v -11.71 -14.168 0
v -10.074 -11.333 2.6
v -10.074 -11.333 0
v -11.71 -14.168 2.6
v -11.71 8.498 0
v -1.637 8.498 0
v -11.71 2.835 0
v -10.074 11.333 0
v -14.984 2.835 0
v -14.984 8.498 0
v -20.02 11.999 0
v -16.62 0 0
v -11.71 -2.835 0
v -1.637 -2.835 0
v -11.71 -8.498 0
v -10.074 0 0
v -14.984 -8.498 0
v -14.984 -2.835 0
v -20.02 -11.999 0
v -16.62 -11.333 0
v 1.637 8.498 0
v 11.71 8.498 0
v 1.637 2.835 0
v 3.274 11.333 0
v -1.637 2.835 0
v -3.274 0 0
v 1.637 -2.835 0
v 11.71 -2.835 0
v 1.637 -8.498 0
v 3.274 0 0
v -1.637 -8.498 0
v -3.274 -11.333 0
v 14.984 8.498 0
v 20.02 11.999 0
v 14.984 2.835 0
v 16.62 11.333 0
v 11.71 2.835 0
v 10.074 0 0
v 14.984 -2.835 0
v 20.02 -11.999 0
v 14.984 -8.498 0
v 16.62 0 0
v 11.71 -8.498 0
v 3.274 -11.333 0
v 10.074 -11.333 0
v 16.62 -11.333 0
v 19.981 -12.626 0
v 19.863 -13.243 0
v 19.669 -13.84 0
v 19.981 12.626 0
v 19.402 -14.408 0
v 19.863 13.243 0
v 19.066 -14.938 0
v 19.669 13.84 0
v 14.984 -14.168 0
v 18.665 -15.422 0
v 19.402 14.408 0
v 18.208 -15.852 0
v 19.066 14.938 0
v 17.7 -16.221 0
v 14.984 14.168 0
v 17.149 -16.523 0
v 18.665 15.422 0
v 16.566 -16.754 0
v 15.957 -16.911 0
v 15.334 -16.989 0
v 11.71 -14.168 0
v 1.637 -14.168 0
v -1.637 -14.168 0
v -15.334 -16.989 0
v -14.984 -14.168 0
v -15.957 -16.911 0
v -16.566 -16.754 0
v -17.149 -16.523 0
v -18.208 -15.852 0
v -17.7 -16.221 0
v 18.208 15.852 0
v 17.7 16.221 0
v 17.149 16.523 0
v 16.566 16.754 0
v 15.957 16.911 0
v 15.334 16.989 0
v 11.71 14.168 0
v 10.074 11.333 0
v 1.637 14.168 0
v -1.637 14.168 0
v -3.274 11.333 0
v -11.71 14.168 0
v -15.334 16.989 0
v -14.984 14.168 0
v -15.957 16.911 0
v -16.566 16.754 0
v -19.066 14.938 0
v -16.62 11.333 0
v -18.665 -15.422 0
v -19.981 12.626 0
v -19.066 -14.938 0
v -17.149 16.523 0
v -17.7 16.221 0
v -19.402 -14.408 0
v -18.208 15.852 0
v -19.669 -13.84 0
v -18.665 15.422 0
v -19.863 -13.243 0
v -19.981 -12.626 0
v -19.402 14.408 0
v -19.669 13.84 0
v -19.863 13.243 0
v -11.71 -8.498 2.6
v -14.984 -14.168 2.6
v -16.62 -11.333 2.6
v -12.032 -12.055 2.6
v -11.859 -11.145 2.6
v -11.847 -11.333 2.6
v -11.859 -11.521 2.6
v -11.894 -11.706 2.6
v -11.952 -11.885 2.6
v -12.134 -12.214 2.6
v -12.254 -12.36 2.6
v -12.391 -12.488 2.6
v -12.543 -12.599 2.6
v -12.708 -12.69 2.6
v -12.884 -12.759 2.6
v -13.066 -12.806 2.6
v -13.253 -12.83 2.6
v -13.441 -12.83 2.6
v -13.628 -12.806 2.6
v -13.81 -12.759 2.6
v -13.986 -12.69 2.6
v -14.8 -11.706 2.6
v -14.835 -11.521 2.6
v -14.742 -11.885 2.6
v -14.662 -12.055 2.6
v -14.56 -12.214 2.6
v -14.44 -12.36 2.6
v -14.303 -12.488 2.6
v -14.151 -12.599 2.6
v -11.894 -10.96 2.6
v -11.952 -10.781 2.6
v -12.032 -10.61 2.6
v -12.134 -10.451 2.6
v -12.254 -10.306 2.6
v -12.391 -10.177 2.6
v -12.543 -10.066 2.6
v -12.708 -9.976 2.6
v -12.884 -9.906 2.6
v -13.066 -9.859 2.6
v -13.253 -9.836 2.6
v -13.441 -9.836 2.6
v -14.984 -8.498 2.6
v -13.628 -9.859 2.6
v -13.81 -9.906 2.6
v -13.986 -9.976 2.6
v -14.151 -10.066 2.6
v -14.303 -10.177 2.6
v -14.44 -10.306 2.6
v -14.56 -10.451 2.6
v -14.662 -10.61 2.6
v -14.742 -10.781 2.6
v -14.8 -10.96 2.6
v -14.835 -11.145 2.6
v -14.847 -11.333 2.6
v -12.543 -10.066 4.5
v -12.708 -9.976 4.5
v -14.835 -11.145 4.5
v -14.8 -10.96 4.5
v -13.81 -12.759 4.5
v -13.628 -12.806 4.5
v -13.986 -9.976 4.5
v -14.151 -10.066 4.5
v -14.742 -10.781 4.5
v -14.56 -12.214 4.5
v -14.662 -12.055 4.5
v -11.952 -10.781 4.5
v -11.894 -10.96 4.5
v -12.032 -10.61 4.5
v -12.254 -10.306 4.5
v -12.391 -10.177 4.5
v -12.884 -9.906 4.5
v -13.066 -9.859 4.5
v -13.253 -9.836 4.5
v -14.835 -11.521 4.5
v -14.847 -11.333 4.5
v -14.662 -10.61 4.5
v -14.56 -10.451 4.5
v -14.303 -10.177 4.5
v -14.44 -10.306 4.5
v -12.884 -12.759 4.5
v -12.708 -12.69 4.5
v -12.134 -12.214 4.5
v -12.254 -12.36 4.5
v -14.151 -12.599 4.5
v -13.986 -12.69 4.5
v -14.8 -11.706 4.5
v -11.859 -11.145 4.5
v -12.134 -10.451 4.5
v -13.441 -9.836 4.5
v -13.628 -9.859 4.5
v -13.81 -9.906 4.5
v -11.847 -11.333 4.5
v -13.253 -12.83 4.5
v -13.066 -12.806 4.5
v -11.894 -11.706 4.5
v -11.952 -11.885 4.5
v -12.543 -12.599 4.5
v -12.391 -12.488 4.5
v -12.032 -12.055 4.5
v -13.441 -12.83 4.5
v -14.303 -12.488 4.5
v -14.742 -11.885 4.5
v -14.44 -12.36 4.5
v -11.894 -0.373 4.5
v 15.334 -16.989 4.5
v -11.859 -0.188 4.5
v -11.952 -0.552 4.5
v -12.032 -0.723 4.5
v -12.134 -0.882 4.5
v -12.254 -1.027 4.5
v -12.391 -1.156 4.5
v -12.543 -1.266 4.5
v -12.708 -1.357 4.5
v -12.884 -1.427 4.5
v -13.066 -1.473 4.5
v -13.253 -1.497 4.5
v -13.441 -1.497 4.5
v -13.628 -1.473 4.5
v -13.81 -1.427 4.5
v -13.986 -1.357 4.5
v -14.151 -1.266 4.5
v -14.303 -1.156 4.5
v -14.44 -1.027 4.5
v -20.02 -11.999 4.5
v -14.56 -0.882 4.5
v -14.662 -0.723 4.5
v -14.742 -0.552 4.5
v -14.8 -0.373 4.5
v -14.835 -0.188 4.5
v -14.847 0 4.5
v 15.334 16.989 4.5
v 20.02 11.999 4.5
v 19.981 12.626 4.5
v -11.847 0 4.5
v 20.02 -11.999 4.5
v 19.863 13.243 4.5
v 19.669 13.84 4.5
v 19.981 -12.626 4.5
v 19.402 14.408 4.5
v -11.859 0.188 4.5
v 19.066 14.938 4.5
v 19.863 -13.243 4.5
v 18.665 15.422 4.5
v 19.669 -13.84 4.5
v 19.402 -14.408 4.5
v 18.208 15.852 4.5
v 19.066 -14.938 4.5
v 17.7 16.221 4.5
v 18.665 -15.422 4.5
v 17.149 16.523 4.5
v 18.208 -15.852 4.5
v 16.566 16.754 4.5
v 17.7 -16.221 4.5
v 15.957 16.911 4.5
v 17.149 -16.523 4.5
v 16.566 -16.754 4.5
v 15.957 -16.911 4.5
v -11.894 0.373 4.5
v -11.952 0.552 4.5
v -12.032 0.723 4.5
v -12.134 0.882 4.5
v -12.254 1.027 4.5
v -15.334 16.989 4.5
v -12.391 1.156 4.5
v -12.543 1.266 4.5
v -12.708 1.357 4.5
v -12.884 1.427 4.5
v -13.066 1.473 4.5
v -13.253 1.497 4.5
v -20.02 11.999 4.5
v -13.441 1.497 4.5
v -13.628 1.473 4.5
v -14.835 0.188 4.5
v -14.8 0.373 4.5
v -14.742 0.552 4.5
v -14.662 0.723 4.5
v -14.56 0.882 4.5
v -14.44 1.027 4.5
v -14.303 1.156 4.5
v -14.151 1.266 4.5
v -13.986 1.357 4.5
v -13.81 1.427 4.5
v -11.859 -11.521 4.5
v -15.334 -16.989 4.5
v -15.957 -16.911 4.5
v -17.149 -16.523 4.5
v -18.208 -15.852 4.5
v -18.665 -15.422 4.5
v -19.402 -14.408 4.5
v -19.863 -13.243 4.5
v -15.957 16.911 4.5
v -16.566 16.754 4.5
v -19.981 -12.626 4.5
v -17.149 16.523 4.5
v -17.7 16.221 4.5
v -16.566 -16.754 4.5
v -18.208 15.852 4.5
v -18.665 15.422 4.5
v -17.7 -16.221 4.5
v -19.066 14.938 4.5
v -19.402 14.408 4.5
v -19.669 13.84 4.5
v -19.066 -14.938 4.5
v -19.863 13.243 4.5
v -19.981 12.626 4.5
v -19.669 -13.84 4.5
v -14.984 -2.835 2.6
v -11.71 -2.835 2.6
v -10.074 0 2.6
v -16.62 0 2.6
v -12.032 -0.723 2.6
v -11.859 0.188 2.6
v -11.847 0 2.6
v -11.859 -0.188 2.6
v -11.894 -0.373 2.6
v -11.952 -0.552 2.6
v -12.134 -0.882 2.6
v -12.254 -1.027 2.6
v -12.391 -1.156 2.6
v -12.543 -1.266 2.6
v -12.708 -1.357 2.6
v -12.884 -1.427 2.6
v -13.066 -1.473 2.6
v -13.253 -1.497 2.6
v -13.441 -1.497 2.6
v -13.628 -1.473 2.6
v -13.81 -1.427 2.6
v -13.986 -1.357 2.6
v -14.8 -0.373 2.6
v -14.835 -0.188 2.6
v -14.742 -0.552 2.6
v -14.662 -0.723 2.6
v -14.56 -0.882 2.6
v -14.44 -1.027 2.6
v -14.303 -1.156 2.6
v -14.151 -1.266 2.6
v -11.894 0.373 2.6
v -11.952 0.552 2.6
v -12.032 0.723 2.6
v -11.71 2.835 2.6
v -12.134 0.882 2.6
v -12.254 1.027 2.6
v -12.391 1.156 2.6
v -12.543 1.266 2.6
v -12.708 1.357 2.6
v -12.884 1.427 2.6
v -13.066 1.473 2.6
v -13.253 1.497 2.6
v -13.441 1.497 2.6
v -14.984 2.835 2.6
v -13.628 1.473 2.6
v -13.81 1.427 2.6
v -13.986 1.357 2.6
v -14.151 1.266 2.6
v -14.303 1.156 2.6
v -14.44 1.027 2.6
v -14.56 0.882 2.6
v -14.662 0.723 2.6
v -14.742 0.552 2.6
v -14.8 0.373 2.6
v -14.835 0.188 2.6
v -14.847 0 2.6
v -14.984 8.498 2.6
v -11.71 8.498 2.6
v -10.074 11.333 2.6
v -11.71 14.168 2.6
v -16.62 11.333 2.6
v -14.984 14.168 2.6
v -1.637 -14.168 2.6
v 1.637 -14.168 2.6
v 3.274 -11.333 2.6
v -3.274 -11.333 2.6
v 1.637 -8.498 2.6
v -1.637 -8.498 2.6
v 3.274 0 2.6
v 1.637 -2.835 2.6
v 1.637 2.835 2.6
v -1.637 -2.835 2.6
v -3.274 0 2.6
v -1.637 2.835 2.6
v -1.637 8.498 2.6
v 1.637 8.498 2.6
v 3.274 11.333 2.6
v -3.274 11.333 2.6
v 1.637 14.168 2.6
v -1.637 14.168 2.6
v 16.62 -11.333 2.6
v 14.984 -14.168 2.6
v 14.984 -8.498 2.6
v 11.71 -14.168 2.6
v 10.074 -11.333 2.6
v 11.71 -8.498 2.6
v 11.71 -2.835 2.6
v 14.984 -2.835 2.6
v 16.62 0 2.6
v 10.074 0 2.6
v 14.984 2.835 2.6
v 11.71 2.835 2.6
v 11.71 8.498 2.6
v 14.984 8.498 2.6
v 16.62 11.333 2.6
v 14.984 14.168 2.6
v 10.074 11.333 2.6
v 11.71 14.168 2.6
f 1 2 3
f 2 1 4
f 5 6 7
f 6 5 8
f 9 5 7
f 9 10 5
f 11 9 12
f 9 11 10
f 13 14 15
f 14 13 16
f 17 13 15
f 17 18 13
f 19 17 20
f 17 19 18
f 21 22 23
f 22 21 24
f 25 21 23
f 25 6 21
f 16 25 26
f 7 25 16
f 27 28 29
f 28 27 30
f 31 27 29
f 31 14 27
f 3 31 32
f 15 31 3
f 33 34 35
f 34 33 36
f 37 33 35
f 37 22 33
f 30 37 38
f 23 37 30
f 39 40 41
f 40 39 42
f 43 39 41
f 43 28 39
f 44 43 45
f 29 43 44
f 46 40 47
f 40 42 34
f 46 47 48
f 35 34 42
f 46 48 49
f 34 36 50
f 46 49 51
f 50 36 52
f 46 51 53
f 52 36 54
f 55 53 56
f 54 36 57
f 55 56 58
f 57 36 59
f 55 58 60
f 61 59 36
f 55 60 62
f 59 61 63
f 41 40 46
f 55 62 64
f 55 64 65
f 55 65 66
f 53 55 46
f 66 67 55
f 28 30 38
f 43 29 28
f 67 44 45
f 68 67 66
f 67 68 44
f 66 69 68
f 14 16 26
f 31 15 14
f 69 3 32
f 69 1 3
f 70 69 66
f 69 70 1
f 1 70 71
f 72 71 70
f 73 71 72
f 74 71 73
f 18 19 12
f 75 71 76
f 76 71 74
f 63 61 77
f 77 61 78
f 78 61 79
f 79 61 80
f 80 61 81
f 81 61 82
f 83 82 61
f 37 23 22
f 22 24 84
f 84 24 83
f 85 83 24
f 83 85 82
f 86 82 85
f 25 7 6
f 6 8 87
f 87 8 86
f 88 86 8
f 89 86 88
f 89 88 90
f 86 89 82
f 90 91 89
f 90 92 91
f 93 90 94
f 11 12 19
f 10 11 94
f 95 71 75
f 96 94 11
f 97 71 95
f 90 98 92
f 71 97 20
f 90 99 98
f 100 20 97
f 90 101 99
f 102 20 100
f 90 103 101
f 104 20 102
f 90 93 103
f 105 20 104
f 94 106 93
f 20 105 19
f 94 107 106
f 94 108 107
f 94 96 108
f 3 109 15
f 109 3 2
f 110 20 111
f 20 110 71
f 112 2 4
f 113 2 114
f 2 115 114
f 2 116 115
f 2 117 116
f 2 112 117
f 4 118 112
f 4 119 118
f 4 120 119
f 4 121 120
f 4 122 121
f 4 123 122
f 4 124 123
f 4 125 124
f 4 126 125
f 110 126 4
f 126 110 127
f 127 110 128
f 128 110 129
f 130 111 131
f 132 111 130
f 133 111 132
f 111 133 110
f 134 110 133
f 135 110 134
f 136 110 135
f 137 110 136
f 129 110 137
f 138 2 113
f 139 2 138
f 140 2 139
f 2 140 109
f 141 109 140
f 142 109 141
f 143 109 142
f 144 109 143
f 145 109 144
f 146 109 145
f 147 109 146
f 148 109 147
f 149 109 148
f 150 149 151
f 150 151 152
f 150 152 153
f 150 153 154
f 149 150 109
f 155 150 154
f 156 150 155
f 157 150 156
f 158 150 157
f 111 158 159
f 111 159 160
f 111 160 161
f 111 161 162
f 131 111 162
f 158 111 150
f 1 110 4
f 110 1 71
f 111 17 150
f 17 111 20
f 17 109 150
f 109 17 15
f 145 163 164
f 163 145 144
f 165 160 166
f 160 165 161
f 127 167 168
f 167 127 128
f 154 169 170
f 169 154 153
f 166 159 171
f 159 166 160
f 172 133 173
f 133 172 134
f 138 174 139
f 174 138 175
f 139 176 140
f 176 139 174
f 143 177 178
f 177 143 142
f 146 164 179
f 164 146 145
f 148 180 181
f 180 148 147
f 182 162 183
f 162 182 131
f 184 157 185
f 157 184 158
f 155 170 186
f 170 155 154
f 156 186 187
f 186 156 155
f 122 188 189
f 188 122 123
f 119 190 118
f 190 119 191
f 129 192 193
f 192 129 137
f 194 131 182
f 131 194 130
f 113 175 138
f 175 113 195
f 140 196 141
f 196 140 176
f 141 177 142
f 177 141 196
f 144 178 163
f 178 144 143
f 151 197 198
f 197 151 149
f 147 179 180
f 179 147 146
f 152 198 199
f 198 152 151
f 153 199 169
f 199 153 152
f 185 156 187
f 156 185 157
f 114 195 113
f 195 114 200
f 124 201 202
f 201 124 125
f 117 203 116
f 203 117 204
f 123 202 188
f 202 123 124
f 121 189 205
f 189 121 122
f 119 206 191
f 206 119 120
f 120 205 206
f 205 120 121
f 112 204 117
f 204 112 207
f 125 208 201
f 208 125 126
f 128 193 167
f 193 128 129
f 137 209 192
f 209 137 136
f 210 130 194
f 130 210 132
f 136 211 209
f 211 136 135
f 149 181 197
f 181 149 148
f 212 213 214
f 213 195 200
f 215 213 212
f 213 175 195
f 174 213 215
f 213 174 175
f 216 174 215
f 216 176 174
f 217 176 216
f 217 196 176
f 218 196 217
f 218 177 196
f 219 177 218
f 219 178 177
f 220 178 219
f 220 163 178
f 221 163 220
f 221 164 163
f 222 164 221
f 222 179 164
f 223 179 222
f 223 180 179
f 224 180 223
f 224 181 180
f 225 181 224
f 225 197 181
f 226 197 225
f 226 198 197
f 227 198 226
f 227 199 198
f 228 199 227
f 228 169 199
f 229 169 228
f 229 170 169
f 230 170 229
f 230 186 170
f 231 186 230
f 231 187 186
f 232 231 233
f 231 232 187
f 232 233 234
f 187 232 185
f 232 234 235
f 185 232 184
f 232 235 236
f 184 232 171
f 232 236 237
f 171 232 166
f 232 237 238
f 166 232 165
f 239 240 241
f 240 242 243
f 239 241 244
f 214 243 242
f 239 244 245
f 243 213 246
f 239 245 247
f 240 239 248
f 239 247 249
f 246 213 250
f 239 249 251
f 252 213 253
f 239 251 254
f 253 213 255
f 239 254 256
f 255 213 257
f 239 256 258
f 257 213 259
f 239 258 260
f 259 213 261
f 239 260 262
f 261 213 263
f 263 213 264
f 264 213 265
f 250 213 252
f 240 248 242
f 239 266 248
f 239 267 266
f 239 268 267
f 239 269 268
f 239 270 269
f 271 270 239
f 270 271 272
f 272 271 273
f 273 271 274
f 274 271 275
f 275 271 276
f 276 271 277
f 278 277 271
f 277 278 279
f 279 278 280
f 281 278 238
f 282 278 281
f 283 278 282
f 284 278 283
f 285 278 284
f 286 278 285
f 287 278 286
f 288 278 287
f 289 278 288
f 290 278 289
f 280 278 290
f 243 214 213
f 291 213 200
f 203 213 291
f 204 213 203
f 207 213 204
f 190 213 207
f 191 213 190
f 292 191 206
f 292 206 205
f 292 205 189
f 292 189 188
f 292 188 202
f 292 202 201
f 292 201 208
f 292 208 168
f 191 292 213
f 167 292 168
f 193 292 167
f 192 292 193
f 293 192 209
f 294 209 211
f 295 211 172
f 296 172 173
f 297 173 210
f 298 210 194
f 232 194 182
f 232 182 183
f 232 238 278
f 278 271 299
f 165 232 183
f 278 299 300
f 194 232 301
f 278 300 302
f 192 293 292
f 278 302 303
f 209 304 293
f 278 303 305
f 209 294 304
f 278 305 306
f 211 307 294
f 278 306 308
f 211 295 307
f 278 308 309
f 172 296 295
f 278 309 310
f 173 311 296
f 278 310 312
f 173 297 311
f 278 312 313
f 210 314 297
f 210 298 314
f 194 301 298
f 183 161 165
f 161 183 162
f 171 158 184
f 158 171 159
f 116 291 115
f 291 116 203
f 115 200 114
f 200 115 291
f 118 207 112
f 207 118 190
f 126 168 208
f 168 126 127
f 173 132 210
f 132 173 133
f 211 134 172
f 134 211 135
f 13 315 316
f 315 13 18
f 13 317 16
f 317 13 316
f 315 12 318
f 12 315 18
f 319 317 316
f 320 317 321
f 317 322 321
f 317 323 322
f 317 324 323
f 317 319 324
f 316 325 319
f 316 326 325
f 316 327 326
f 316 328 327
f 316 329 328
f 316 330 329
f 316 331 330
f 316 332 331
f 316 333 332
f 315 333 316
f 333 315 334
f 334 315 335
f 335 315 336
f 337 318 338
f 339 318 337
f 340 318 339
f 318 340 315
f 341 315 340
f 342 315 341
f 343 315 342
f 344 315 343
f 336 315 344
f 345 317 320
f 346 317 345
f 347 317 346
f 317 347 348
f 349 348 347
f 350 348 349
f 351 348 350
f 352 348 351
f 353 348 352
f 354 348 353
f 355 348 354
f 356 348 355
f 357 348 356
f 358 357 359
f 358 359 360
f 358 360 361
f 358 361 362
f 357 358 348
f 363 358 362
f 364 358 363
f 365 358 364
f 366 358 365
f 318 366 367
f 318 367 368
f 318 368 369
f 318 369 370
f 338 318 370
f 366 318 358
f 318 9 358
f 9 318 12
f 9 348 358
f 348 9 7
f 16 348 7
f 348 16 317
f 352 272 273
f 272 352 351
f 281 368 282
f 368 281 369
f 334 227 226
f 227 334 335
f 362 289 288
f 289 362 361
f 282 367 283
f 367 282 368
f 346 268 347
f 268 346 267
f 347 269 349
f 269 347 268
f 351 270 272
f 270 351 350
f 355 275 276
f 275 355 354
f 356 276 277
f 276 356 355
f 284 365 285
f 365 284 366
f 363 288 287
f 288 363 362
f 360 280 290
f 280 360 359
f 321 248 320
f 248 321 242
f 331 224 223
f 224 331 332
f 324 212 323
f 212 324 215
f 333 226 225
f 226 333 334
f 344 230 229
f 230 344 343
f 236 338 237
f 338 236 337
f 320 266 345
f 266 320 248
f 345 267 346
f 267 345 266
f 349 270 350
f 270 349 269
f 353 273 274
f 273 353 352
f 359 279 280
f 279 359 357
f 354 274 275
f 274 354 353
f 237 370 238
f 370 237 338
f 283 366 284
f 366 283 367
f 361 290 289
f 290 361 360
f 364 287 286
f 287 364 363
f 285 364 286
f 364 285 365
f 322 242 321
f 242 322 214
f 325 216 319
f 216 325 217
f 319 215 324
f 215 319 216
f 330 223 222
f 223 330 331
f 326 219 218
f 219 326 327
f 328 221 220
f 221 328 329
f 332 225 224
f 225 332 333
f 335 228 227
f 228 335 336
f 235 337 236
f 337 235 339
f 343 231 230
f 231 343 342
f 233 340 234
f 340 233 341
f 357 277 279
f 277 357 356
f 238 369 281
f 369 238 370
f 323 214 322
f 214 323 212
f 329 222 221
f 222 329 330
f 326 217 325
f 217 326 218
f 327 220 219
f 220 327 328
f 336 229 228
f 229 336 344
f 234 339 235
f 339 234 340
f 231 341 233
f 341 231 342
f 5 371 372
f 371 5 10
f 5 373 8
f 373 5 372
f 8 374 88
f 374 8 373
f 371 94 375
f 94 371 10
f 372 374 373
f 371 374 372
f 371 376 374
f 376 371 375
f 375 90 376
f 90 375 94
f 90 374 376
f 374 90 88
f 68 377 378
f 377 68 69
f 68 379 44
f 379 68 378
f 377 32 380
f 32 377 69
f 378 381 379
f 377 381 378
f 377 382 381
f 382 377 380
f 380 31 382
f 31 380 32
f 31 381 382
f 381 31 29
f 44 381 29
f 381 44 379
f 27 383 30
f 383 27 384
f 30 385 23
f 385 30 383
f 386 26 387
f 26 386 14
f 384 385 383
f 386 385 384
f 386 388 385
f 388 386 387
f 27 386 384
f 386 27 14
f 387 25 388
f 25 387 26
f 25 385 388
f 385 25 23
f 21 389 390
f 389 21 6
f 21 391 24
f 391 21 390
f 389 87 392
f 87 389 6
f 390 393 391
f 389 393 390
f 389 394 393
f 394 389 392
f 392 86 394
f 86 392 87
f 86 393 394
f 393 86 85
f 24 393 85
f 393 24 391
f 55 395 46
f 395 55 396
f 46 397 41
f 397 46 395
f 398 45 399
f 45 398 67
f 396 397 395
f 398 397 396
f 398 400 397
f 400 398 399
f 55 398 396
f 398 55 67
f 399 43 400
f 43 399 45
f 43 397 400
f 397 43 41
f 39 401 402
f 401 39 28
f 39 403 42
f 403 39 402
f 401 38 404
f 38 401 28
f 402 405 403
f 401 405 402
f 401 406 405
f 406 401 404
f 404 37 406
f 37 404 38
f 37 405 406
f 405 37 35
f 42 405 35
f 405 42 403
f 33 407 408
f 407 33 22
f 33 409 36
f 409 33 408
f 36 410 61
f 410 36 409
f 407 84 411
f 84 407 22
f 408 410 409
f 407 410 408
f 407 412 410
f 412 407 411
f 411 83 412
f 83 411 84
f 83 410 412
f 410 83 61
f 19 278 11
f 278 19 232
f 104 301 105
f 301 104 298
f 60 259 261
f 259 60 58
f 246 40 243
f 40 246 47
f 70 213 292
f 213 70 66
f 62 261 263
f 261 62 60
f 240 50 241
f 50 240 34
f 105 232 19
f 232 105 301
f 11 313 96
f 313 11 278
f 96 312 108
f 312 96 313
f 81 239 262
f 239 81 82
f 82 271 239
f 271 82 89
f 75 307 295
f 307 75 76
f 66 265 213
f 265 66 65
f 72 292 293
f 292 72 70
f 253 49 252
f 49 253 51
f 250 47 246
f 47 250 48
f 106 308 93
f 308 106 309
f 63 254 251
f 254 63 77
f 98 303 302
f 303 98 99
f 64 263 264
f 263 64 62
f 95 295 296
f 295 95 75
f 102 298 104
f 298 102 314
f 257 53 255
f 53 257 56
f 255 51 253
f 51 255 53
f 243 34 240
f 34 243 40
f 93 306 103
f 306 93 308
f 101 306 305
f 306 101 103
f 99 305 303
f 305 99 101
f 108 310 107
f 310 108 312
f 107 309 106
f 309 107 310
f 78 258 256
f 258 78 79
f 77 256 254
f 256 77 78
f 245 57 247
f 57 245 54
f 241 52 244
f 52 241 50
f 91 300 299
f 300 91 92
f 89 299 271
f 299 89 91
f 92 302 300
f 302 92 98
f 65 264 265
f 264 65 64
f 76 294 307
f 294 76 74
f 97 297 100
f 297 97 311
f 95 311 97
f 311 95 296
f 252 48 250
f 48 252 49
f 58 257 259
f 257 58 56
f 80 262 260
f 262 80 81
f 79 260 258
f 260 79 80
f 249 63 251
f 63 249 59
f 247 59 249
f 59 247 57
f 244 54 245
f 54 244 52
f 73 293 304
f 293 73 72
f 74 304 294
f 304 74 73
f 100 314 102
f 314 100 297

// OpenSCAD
$fn = 50;


difference() {
	union() {
		translate(v = [0, 0, 0]) {
			rotate(a = [0, 0, 0]) {
				hull() {
					translate(v = [-15.0205000000, 11.9991334489, 0]) {
						rotate(a = [0, 0, 0]) {
							translate(v = [0, 0, 0]) {
								rotate(a = [0, 0, 0]) {
									cylinder(h = 4.5000000000, r = 5);
								}
							}
						}
					}
					translate(v = [15.0205000000, 11.9991334489, 0]) {
						rotate(a = [0, 0, 0]) {
							translate(v = [0, 0, 0]) {
								rotate(a = [0, 0, 0]) {
									cylinder(h = 4.5000000000, r = 5);
								}
							}
						}
					}
					translate(v = [-15.0205000000, -11.9991334489, 0]) {
						rotate(a = [0, 0, 0]) {
							translate(v = [0, 0, 0]) {
								rotate(a = [0, 0, 0]) {
									cylinder(h = 4.5000000000, r = 5);
								}
							}
						}
					}
					translate(v = [15.0205000000, -11.9991334489, 0]) {
						rotate(a = [0, 0, 0]) {
							translate(v = [0, 0, 0]) {
								rotate(a = [0, 0, 0]) {
									cylinder(h = 4.5000000000, r = 5);
								}
							}
						}
					}
				}
			}
		}
	}
	union() {
		translate(v = [-13.3470000000, -11.3327556326, 0]) {
			rotate(a = [0, 0, 0]) {
				translate(v = [0, 0, 0]) {
					rotate(a = [0, 0, 0]) {
						linear_extrude(height = 2.6000000000) {
							polygon(points = [[3.2735000000, 0.0000000000], [1.6367500000, 2.8349341593], [-1.6367500000, 2.8349341593], [-3.2735000000, 0.0000000000], [-1.6367500000, -2.8349341593], [1.6367500000, -2.8349341593]]);
						}
					}
				}
			}
		}
		#translate(v = [-13.3470000000, -11.3327556326, 0]) {
			rotate(a = [0, 0, 0]) {
				cylinder(h = 4.5000000000, r = 1.5000000000);
			}
		}
		translate(v = [-13.3470000000, -0.0000000000, 0]) {
			rotate(a = [0, 0, 0]) {
				translate(v = [0, 0, 0]) {
					rotate(a = [0, 0, 0]) {
						linear_extrude(height = 2.6000000000) {
							polygon(points = [[3.2735000000, 0.0000000000], [1.6367500000, 2.8349341593], [-1.6367500000, 2.8349341593], [-3.2735000000, 0.0000000000], [-1.6367500000, -2.8349341593], [1.6367500000, -2.8349341593]]);
						}
					}
				}
			}
		}
		#translate(v = [-13.3470000000, -0.0000000000, 0]) {
			rotate(a = [0, 0, 0]) {
				cylinder(h = 4.5000000000, r = 1.5000000000);
			}
		}
		translate(v = [-13.3470000000, 11.3327556326, 0]) {
			rotate(a = [0, 0, 0]) {
				translate(v = [0, 0, 0]) {
					rotate(a = [0, 0, 0]) {
						linear_extrude(height = 2.6000000000) {
							polygon(points = [[3.2735000000, 0.0000000000], [1.6367500000, 2.8349341593], [-1.6367500000, 2.8349341593], [-3.2735000000, 0.0000000000], [-1.6367500000, -2.8349341593], [1.6367500000, -2.8349341593]]);
						}
					}
				}
			}
		}
		translate(v = [0.0000000000, -11.3327556326, 0]) {
			rotate(a = [0, 0, 0]) {
				translate(v = [0, 0, 0]) {
					rotate(a = [0, 0, 0]) {
						linear_extrude(height = 2.6000000000) {
							polygon(points = [[3.2735000000, 0.0000000000], [1.6367500000, 2.8349341593], [-1.6367500000, 2.8349341593], [-3.2735000000, 0.0000000000], [-1.6367500000, -2.8349341593], [1.6367500000, -2.8349341593]]);
						}
					}
				}
			}
		}
		translate(v = [0.0000000000, -0.0000000000, 0]) {
			rotate(a = [0, 0, 0]) {
				translate(v = [0, 0, 0]) {
					rotate(a = [0, 0, 0]) {
						linear_extrude(height = 2.6000000000) {
							polygon(points = [[3.2735000000, 0.0000000000], [1.6367500000, 2.8349341593], [-1.6367500000, 2.8349341593], [-3.2735000000, 0.0000000000], [-1.6367500000, -2.8349341593], [1.6367500000, -2.8349341593]]);
						}
					}
				}
			}
		}
		translate(v = [0.0000000000, 11.3327556326, 0]) {
			rotate(a = [0, 0, 0]) {
				translate(v = [0, 0, 0]) {
					rotate(a = [0, 0, 0]) {
						linear_extrude(height = 2.6000000000) {
							polygon(points = [[3.2735000000, 0.0000000000], [1.6367500000, 2.8349341593], [-1.6367500000, 2.8349341593], [-3.2735000000, 0.0000000000], [-1.6367500000, -2.8349341593], [1.6367500000, -2.8349341593]]);
						}
					}
				}
			}
		}
		translate(v = [13.3470000000, -11.3327556326, 0]) {
			rotate(a = [0, 0, 0]) {
				translate(v = [0, 0, 0]) {
					rotate(a = [0, 0, 0]) {
						linear_extrude(height = 2.6000000000) {
							polygon(points = [[3.2735000000, 0.0000000000], [1.6367500000, 2.8349341593], [-1.6367500000, 2.8349341593], [-3.2735000000, 0.0000000000], [-1.6367500000, -2.8349341593], [1.6367500000, -2.8349341593]]);
						}
					}
				}
			}
		}
		translate(v = [13.3470000000, -0.0000000000, 0]) {
			rotate(a = [0, 0, 0]) {
				translate(v = [0, 0, 0]) {
					rotate(a = [0, 0, 0]) {
						linear_extrude(height = 2.6000000000) {
							polygon(points = [[3.2735000000, 0.0000000000], [1.6367500000, 2.8349341593], [-1.6367500000, 2.8349341593], [-3.2735000000, 0.0000000000], [-1.6367500000, -2.8349341593], [1.6367500000, -2.8349341593]]);
						}
					}
				}
			}
		}
		translate(v = [13.3470000000, 11.3327556326, 0]) {
			rotate(a = [0, 0, 0]) {
				translate(v = [0, 0, 0]) {
					rotate(a = [0, 0, 0]) {
						linear_extrude(height = 2.6000000000) {
							polygon(points = [[3.2735000000, 0.0000000000], [1.6367500000, 2.8349341593], [-1.6367500000, 2.8349341593], [-3.2735000000, 0.0000000000], [-1.6367500000, -2.8349341593], [1.6367500000, -2.8349341593]]);
						}
					}
				}
			}
		}
	}
}
